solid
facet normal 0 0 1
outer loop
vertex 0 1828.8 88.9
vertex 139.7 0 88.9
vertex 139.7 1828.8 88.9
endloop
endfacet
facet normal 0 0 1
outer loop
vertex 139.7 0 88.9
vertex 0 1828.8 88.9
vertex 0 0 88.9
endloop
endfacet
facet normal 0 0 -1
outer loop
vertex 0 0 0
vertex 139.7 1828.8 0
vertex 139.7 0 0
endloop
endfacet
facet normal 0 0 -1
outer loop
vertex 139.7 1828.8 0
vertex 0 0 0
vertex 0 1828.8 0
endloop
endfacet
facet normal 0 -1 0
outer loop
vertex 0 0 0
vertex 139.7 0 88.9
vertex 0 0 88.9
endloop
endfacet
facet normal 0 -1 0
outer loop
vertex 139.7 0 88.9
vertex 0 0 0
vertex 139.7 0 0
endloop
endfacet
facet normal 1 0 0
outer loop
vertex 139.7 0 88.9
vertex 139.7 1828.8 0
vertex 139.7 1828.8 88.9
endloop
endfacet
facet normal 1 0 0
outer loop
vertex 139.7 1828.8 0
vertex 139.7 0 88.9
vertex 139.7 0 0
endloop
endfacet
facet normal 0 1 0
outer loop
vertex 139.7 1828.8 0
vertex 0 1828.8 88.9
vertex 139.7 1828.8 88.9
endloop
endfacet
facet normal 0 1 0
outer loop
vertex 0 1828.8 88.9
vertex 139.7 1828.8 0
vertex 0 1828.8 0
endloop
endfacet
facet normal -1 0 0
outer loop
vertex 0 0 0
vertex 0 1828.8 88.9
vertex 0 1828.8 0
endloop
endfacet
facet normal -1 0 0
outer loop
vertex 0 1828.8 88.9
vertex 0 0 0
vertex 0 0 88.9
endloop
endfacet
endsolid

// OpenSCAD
/* dimensions in mm
*/
inch = 25.4;
lumberinch = inch*0.75;
lumbertwoinch = inch*1.5;
lumberfourinch = inch*3.5;
lumbersixinch = inch*5.5;
feet = inch*12;

module fourbysix(); {
    color("Peru")
    cube([lumbersixinch,feet*6,lumberfourinch]);
}
